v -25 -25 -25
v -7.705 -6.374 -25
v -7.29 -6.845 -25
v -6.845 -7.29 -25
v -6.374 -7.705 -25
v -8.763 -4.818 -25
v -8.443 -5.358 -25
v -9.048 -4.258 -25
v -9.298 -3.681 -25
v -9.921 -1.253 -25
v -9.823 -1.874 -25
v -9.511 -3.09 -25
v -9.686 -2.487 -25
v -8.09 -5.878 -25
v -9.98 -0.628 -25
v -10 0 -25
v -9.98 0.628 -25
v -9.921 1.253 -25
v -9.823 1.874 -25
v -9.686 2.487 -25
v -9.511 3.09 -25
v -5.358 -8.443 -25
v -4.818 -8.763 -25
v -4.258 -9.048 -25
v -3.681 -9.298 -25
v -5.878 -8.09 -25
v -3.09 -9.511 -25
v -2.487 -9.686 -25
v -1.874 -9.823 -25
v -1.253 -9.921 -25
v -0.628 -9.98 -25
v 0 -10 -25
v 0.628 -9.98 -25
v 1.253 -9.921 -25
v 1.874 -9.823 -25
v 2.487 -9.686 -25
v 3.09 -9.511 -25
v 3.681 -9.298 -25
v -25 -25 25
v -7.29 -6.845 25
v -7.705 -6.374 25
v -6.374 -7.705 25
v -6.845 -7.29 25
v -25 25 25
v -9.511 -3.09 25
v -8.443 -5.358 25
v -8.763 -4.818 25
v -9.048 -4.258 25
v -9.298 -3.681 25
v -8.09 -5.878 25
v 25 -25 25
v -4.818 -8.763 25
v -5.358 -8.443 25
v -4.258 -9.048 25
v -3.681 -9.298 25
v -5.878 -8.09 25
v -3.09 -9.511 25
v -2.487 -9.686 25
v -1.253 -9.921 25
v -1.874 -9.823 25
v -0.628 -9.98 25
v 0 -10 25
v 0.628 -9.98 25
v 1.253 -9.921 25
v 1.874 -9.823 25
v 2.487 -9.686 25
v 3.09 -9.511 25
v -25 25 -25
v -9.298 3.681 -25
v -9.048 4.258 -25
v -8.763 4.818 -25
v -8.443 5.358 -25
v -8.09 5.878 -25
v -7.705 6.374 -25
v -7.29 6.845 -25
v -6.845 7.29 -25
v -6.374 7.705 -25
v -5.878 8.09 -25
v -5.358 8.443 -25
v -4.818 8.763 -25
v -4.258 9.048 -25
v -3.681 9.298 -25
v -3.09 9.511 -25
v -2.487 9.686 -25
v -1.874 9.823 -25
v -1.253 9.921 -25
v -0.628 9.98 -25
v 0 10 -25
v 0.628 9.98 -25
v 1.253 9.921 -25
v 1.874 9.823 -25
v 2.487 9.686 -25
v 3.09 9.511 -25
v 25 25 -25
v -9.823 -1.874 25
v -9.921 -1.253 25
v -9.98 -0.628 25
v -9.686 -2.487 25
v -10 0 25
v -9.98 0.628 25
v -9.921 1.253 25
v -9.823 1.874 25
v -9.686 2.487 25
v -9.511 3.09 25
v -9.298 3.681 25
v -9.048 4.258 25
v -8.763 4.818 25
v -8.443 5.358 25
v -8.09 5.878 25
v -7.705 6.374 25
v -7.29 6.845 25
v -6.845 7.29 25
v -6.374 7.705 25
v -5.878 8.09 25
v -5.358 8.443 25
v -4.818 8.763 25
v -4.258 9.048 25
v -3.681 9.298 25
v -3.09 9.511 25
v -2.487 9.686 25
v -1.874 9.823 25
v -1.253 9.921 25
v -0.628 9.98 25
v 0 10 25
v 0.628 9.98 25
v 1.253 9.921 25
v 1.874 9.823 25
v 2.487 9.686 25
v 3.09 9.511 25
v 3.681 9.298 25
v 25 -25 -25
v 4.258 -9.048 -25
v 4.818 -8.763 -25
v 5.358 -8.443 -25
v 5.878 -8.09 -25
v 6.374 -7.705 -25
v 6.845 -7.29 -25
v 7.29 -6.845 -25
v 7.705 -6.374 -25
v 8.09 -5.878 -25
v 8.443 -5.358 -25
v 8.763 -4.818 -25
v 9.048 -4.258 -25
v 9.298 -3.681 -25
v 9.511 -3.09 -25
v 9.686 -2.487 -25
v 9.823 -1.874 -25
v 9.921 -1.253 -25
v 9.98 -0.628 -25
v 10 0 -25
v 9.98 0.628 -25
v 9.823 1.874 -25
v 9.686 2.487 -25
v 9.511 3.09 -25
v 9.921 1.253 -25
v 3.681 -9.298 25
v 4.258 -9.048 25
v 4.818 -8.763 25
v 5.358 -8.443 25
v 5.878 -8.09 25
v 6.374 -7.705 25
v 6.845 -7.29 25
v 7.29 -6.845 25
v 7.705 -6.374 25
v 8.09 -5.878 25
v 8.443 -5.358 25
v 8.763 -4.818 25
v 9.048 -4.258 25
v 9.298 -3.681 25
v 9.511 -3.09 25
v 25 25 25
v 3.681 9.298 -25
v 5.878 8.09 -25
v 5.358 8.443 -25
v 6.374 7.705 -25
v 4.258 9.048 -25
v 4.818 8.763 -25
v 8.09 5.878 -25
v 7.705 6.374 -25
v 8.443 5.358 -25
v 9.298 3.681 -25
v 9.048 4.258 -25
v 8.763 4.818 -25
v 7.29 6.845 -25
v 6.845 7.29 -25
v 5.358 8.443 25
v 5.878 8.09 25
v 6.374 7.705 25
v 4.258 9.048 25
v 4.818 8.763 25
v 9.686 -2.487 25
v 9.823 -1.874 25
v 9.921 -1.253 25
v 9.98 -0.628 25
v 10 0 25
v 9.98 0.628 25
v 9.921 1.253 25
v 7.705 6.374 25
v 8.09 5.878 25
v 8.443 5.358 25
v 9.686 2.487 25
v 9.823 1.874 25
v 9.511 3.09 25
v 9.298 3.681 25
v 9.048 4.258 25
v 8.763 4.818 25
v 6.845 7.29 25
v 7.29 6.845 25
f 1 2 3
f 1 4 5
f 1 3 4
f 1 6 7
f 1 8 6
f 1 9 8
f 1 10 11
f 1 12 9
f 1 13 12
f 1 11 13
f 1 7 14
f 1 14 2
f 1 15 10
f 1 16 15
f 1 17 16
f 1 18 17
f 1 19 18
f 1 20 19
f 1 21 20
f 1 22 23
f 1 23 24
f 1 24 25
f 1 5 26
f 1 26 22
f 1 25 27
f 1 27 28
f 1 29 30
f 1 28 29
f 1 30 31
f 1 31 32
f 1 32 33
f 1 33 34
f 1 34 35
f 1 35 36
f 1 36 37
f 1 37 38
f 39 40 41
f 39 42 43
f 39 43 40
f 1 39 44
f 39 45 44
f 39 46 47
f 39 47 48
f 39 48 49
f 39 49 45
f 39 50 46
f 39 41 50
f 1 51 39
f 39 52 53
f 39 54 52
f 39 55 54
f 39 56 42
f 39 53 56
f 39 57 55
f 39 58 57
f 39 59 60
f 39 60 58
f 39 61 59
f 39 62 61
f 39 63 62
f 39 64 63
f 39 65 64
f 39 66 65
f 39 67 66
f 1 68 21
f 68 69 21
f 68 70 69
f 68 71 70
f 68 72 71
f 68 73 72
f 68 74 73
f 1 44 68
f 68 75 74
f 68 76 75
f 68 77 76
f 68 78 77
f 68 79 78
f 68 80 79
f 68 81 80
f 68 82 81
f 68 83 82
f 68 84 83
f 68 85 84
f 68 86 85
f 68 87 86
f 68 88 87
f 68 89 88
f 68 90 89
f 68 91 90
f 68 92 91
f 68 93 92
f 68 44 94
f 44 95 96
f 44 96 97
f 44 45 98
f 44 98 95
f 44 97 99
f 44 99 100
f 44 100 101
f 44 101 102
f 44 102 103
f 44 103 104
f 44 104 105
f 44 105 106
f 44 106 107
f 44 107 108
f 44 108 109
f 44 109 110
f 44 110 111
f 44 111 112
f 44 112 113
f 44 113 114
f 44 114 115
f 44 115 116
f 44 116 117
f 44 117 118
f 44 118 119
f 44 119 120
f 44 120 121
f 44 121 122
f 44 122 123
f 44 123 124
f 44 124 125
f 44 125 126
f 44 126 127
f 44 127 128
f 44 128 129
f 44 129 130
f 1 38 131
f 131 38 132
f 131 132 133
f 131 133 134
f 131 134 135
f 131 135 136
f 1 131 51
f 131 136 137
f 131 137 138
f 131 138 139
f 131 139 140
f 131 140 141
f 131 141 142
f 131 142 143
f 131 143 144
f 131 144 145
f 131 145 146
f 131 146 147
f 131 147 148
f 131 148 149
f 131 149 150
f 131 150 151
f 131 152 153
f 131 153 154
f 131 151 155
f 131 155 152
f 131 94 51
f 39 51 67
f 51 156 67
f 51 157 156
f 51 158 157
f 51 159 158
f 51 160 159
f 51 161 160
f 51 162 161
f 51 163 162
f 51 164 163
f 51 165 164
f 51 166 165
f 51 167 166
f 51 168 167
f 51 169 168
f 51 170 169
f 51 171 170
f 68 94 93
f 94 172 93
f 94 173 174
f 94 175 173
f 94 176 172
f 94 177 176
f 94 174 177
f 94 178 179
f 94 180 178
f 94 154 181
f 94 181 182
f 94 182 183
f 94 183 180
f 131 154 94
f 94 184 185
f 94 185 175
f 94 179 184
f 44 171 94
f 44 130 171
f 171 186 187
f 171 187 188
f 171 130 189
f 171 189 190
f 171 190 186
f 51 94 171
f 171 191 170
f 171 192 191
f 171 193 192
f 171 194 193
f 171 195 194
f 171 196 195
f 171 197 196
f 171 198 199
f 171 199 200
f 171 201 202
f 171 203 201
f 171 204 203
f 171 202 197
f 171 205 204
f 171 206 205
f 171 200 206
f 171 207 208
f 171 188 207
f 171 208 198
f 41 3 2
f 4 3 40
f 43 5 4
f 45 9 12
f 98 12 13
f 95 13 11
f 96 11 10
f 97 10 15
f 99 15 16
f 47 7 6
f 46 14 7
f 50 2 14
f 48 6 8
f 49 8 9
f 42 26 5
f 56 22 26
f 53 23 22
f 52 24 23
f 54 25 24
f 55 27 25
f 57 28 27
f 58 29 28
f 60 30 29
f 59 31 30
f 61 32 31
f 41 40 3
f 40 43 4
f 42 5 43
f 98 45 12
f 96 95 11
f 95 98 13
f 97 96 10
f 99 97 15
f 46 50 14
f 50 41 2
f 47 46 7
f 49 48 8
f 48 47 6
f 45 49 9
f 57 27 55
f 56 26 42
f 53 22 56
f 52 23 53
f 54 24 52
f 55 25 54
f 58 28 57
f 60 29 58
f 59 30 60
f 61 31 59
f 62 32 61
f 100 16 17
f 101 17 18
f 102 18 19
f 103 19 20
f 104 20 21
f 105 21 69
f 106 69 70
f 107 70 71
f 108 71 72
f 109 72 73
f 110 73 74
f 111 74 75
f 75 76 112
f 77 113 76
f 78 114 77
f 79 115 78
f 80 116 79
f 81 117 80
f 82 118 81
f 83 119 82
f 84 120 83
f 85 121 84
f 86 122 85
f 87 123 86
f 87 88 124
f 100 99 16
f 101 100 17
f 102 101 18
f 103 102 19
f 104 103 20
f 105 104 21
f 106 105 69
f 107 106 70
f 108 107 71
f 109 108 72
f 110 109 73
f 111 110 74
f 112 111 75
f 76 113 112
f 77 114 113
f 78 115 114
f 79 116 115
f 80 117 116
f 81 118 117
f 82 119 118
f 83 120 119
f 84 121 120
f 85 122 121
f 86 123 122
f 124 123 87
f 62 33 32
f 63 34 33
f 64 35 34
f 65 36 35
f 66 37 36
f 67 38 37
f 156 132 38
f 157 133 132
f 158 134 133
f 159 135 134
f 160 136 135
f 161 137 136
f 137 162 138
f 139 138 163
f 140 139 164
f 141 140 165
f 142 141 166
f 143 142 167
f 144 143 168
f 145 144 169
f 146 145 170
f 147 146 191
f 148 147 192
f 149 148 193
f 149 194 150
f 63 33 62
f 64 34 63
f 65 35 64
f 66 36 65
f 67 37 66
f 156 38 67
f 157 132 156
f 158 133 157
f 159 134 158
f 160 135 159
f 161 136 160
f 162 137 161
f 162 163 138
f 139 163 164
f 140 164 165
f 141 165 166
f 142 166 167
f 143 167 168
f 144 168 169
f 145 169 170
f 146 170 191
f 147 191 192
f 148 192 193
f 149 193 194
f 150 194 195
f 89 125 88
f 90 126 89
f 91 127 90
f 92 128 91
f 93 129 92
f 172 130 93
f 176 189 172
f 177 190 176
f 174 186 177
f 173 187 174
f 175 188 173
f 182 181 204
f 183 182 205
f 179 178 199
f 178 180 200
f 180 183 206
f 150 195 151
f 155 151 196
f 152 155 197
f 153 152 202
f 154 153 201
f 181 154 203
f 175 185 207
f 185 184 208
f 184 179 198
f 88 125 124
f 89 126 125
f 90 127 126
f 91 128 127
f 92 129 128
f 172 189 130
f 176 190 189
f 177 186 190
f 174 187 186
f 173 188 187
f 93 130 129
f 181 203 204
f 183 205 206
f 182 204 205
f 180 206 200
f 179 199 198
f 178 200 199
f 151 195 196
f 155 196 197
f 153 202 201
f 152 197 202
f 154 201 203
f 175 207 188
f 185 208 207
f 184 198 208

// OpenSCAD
// 50mm角の立方体の中央にZ軸方向の直径20mm貫通穴

$fn = 100;

cube_size = 50;
hole_d = 20;

difference() {
    // 50mm角の立方体（中心を原点に配置）
    cube([cube_size, cube_size, cube_size], center = true);

    // Z軸方向の貫通穴（余裕を持たせて確実に貫通させる）
    cylinder(h = cube_size + 2, d = hole_d, center = true);
}
